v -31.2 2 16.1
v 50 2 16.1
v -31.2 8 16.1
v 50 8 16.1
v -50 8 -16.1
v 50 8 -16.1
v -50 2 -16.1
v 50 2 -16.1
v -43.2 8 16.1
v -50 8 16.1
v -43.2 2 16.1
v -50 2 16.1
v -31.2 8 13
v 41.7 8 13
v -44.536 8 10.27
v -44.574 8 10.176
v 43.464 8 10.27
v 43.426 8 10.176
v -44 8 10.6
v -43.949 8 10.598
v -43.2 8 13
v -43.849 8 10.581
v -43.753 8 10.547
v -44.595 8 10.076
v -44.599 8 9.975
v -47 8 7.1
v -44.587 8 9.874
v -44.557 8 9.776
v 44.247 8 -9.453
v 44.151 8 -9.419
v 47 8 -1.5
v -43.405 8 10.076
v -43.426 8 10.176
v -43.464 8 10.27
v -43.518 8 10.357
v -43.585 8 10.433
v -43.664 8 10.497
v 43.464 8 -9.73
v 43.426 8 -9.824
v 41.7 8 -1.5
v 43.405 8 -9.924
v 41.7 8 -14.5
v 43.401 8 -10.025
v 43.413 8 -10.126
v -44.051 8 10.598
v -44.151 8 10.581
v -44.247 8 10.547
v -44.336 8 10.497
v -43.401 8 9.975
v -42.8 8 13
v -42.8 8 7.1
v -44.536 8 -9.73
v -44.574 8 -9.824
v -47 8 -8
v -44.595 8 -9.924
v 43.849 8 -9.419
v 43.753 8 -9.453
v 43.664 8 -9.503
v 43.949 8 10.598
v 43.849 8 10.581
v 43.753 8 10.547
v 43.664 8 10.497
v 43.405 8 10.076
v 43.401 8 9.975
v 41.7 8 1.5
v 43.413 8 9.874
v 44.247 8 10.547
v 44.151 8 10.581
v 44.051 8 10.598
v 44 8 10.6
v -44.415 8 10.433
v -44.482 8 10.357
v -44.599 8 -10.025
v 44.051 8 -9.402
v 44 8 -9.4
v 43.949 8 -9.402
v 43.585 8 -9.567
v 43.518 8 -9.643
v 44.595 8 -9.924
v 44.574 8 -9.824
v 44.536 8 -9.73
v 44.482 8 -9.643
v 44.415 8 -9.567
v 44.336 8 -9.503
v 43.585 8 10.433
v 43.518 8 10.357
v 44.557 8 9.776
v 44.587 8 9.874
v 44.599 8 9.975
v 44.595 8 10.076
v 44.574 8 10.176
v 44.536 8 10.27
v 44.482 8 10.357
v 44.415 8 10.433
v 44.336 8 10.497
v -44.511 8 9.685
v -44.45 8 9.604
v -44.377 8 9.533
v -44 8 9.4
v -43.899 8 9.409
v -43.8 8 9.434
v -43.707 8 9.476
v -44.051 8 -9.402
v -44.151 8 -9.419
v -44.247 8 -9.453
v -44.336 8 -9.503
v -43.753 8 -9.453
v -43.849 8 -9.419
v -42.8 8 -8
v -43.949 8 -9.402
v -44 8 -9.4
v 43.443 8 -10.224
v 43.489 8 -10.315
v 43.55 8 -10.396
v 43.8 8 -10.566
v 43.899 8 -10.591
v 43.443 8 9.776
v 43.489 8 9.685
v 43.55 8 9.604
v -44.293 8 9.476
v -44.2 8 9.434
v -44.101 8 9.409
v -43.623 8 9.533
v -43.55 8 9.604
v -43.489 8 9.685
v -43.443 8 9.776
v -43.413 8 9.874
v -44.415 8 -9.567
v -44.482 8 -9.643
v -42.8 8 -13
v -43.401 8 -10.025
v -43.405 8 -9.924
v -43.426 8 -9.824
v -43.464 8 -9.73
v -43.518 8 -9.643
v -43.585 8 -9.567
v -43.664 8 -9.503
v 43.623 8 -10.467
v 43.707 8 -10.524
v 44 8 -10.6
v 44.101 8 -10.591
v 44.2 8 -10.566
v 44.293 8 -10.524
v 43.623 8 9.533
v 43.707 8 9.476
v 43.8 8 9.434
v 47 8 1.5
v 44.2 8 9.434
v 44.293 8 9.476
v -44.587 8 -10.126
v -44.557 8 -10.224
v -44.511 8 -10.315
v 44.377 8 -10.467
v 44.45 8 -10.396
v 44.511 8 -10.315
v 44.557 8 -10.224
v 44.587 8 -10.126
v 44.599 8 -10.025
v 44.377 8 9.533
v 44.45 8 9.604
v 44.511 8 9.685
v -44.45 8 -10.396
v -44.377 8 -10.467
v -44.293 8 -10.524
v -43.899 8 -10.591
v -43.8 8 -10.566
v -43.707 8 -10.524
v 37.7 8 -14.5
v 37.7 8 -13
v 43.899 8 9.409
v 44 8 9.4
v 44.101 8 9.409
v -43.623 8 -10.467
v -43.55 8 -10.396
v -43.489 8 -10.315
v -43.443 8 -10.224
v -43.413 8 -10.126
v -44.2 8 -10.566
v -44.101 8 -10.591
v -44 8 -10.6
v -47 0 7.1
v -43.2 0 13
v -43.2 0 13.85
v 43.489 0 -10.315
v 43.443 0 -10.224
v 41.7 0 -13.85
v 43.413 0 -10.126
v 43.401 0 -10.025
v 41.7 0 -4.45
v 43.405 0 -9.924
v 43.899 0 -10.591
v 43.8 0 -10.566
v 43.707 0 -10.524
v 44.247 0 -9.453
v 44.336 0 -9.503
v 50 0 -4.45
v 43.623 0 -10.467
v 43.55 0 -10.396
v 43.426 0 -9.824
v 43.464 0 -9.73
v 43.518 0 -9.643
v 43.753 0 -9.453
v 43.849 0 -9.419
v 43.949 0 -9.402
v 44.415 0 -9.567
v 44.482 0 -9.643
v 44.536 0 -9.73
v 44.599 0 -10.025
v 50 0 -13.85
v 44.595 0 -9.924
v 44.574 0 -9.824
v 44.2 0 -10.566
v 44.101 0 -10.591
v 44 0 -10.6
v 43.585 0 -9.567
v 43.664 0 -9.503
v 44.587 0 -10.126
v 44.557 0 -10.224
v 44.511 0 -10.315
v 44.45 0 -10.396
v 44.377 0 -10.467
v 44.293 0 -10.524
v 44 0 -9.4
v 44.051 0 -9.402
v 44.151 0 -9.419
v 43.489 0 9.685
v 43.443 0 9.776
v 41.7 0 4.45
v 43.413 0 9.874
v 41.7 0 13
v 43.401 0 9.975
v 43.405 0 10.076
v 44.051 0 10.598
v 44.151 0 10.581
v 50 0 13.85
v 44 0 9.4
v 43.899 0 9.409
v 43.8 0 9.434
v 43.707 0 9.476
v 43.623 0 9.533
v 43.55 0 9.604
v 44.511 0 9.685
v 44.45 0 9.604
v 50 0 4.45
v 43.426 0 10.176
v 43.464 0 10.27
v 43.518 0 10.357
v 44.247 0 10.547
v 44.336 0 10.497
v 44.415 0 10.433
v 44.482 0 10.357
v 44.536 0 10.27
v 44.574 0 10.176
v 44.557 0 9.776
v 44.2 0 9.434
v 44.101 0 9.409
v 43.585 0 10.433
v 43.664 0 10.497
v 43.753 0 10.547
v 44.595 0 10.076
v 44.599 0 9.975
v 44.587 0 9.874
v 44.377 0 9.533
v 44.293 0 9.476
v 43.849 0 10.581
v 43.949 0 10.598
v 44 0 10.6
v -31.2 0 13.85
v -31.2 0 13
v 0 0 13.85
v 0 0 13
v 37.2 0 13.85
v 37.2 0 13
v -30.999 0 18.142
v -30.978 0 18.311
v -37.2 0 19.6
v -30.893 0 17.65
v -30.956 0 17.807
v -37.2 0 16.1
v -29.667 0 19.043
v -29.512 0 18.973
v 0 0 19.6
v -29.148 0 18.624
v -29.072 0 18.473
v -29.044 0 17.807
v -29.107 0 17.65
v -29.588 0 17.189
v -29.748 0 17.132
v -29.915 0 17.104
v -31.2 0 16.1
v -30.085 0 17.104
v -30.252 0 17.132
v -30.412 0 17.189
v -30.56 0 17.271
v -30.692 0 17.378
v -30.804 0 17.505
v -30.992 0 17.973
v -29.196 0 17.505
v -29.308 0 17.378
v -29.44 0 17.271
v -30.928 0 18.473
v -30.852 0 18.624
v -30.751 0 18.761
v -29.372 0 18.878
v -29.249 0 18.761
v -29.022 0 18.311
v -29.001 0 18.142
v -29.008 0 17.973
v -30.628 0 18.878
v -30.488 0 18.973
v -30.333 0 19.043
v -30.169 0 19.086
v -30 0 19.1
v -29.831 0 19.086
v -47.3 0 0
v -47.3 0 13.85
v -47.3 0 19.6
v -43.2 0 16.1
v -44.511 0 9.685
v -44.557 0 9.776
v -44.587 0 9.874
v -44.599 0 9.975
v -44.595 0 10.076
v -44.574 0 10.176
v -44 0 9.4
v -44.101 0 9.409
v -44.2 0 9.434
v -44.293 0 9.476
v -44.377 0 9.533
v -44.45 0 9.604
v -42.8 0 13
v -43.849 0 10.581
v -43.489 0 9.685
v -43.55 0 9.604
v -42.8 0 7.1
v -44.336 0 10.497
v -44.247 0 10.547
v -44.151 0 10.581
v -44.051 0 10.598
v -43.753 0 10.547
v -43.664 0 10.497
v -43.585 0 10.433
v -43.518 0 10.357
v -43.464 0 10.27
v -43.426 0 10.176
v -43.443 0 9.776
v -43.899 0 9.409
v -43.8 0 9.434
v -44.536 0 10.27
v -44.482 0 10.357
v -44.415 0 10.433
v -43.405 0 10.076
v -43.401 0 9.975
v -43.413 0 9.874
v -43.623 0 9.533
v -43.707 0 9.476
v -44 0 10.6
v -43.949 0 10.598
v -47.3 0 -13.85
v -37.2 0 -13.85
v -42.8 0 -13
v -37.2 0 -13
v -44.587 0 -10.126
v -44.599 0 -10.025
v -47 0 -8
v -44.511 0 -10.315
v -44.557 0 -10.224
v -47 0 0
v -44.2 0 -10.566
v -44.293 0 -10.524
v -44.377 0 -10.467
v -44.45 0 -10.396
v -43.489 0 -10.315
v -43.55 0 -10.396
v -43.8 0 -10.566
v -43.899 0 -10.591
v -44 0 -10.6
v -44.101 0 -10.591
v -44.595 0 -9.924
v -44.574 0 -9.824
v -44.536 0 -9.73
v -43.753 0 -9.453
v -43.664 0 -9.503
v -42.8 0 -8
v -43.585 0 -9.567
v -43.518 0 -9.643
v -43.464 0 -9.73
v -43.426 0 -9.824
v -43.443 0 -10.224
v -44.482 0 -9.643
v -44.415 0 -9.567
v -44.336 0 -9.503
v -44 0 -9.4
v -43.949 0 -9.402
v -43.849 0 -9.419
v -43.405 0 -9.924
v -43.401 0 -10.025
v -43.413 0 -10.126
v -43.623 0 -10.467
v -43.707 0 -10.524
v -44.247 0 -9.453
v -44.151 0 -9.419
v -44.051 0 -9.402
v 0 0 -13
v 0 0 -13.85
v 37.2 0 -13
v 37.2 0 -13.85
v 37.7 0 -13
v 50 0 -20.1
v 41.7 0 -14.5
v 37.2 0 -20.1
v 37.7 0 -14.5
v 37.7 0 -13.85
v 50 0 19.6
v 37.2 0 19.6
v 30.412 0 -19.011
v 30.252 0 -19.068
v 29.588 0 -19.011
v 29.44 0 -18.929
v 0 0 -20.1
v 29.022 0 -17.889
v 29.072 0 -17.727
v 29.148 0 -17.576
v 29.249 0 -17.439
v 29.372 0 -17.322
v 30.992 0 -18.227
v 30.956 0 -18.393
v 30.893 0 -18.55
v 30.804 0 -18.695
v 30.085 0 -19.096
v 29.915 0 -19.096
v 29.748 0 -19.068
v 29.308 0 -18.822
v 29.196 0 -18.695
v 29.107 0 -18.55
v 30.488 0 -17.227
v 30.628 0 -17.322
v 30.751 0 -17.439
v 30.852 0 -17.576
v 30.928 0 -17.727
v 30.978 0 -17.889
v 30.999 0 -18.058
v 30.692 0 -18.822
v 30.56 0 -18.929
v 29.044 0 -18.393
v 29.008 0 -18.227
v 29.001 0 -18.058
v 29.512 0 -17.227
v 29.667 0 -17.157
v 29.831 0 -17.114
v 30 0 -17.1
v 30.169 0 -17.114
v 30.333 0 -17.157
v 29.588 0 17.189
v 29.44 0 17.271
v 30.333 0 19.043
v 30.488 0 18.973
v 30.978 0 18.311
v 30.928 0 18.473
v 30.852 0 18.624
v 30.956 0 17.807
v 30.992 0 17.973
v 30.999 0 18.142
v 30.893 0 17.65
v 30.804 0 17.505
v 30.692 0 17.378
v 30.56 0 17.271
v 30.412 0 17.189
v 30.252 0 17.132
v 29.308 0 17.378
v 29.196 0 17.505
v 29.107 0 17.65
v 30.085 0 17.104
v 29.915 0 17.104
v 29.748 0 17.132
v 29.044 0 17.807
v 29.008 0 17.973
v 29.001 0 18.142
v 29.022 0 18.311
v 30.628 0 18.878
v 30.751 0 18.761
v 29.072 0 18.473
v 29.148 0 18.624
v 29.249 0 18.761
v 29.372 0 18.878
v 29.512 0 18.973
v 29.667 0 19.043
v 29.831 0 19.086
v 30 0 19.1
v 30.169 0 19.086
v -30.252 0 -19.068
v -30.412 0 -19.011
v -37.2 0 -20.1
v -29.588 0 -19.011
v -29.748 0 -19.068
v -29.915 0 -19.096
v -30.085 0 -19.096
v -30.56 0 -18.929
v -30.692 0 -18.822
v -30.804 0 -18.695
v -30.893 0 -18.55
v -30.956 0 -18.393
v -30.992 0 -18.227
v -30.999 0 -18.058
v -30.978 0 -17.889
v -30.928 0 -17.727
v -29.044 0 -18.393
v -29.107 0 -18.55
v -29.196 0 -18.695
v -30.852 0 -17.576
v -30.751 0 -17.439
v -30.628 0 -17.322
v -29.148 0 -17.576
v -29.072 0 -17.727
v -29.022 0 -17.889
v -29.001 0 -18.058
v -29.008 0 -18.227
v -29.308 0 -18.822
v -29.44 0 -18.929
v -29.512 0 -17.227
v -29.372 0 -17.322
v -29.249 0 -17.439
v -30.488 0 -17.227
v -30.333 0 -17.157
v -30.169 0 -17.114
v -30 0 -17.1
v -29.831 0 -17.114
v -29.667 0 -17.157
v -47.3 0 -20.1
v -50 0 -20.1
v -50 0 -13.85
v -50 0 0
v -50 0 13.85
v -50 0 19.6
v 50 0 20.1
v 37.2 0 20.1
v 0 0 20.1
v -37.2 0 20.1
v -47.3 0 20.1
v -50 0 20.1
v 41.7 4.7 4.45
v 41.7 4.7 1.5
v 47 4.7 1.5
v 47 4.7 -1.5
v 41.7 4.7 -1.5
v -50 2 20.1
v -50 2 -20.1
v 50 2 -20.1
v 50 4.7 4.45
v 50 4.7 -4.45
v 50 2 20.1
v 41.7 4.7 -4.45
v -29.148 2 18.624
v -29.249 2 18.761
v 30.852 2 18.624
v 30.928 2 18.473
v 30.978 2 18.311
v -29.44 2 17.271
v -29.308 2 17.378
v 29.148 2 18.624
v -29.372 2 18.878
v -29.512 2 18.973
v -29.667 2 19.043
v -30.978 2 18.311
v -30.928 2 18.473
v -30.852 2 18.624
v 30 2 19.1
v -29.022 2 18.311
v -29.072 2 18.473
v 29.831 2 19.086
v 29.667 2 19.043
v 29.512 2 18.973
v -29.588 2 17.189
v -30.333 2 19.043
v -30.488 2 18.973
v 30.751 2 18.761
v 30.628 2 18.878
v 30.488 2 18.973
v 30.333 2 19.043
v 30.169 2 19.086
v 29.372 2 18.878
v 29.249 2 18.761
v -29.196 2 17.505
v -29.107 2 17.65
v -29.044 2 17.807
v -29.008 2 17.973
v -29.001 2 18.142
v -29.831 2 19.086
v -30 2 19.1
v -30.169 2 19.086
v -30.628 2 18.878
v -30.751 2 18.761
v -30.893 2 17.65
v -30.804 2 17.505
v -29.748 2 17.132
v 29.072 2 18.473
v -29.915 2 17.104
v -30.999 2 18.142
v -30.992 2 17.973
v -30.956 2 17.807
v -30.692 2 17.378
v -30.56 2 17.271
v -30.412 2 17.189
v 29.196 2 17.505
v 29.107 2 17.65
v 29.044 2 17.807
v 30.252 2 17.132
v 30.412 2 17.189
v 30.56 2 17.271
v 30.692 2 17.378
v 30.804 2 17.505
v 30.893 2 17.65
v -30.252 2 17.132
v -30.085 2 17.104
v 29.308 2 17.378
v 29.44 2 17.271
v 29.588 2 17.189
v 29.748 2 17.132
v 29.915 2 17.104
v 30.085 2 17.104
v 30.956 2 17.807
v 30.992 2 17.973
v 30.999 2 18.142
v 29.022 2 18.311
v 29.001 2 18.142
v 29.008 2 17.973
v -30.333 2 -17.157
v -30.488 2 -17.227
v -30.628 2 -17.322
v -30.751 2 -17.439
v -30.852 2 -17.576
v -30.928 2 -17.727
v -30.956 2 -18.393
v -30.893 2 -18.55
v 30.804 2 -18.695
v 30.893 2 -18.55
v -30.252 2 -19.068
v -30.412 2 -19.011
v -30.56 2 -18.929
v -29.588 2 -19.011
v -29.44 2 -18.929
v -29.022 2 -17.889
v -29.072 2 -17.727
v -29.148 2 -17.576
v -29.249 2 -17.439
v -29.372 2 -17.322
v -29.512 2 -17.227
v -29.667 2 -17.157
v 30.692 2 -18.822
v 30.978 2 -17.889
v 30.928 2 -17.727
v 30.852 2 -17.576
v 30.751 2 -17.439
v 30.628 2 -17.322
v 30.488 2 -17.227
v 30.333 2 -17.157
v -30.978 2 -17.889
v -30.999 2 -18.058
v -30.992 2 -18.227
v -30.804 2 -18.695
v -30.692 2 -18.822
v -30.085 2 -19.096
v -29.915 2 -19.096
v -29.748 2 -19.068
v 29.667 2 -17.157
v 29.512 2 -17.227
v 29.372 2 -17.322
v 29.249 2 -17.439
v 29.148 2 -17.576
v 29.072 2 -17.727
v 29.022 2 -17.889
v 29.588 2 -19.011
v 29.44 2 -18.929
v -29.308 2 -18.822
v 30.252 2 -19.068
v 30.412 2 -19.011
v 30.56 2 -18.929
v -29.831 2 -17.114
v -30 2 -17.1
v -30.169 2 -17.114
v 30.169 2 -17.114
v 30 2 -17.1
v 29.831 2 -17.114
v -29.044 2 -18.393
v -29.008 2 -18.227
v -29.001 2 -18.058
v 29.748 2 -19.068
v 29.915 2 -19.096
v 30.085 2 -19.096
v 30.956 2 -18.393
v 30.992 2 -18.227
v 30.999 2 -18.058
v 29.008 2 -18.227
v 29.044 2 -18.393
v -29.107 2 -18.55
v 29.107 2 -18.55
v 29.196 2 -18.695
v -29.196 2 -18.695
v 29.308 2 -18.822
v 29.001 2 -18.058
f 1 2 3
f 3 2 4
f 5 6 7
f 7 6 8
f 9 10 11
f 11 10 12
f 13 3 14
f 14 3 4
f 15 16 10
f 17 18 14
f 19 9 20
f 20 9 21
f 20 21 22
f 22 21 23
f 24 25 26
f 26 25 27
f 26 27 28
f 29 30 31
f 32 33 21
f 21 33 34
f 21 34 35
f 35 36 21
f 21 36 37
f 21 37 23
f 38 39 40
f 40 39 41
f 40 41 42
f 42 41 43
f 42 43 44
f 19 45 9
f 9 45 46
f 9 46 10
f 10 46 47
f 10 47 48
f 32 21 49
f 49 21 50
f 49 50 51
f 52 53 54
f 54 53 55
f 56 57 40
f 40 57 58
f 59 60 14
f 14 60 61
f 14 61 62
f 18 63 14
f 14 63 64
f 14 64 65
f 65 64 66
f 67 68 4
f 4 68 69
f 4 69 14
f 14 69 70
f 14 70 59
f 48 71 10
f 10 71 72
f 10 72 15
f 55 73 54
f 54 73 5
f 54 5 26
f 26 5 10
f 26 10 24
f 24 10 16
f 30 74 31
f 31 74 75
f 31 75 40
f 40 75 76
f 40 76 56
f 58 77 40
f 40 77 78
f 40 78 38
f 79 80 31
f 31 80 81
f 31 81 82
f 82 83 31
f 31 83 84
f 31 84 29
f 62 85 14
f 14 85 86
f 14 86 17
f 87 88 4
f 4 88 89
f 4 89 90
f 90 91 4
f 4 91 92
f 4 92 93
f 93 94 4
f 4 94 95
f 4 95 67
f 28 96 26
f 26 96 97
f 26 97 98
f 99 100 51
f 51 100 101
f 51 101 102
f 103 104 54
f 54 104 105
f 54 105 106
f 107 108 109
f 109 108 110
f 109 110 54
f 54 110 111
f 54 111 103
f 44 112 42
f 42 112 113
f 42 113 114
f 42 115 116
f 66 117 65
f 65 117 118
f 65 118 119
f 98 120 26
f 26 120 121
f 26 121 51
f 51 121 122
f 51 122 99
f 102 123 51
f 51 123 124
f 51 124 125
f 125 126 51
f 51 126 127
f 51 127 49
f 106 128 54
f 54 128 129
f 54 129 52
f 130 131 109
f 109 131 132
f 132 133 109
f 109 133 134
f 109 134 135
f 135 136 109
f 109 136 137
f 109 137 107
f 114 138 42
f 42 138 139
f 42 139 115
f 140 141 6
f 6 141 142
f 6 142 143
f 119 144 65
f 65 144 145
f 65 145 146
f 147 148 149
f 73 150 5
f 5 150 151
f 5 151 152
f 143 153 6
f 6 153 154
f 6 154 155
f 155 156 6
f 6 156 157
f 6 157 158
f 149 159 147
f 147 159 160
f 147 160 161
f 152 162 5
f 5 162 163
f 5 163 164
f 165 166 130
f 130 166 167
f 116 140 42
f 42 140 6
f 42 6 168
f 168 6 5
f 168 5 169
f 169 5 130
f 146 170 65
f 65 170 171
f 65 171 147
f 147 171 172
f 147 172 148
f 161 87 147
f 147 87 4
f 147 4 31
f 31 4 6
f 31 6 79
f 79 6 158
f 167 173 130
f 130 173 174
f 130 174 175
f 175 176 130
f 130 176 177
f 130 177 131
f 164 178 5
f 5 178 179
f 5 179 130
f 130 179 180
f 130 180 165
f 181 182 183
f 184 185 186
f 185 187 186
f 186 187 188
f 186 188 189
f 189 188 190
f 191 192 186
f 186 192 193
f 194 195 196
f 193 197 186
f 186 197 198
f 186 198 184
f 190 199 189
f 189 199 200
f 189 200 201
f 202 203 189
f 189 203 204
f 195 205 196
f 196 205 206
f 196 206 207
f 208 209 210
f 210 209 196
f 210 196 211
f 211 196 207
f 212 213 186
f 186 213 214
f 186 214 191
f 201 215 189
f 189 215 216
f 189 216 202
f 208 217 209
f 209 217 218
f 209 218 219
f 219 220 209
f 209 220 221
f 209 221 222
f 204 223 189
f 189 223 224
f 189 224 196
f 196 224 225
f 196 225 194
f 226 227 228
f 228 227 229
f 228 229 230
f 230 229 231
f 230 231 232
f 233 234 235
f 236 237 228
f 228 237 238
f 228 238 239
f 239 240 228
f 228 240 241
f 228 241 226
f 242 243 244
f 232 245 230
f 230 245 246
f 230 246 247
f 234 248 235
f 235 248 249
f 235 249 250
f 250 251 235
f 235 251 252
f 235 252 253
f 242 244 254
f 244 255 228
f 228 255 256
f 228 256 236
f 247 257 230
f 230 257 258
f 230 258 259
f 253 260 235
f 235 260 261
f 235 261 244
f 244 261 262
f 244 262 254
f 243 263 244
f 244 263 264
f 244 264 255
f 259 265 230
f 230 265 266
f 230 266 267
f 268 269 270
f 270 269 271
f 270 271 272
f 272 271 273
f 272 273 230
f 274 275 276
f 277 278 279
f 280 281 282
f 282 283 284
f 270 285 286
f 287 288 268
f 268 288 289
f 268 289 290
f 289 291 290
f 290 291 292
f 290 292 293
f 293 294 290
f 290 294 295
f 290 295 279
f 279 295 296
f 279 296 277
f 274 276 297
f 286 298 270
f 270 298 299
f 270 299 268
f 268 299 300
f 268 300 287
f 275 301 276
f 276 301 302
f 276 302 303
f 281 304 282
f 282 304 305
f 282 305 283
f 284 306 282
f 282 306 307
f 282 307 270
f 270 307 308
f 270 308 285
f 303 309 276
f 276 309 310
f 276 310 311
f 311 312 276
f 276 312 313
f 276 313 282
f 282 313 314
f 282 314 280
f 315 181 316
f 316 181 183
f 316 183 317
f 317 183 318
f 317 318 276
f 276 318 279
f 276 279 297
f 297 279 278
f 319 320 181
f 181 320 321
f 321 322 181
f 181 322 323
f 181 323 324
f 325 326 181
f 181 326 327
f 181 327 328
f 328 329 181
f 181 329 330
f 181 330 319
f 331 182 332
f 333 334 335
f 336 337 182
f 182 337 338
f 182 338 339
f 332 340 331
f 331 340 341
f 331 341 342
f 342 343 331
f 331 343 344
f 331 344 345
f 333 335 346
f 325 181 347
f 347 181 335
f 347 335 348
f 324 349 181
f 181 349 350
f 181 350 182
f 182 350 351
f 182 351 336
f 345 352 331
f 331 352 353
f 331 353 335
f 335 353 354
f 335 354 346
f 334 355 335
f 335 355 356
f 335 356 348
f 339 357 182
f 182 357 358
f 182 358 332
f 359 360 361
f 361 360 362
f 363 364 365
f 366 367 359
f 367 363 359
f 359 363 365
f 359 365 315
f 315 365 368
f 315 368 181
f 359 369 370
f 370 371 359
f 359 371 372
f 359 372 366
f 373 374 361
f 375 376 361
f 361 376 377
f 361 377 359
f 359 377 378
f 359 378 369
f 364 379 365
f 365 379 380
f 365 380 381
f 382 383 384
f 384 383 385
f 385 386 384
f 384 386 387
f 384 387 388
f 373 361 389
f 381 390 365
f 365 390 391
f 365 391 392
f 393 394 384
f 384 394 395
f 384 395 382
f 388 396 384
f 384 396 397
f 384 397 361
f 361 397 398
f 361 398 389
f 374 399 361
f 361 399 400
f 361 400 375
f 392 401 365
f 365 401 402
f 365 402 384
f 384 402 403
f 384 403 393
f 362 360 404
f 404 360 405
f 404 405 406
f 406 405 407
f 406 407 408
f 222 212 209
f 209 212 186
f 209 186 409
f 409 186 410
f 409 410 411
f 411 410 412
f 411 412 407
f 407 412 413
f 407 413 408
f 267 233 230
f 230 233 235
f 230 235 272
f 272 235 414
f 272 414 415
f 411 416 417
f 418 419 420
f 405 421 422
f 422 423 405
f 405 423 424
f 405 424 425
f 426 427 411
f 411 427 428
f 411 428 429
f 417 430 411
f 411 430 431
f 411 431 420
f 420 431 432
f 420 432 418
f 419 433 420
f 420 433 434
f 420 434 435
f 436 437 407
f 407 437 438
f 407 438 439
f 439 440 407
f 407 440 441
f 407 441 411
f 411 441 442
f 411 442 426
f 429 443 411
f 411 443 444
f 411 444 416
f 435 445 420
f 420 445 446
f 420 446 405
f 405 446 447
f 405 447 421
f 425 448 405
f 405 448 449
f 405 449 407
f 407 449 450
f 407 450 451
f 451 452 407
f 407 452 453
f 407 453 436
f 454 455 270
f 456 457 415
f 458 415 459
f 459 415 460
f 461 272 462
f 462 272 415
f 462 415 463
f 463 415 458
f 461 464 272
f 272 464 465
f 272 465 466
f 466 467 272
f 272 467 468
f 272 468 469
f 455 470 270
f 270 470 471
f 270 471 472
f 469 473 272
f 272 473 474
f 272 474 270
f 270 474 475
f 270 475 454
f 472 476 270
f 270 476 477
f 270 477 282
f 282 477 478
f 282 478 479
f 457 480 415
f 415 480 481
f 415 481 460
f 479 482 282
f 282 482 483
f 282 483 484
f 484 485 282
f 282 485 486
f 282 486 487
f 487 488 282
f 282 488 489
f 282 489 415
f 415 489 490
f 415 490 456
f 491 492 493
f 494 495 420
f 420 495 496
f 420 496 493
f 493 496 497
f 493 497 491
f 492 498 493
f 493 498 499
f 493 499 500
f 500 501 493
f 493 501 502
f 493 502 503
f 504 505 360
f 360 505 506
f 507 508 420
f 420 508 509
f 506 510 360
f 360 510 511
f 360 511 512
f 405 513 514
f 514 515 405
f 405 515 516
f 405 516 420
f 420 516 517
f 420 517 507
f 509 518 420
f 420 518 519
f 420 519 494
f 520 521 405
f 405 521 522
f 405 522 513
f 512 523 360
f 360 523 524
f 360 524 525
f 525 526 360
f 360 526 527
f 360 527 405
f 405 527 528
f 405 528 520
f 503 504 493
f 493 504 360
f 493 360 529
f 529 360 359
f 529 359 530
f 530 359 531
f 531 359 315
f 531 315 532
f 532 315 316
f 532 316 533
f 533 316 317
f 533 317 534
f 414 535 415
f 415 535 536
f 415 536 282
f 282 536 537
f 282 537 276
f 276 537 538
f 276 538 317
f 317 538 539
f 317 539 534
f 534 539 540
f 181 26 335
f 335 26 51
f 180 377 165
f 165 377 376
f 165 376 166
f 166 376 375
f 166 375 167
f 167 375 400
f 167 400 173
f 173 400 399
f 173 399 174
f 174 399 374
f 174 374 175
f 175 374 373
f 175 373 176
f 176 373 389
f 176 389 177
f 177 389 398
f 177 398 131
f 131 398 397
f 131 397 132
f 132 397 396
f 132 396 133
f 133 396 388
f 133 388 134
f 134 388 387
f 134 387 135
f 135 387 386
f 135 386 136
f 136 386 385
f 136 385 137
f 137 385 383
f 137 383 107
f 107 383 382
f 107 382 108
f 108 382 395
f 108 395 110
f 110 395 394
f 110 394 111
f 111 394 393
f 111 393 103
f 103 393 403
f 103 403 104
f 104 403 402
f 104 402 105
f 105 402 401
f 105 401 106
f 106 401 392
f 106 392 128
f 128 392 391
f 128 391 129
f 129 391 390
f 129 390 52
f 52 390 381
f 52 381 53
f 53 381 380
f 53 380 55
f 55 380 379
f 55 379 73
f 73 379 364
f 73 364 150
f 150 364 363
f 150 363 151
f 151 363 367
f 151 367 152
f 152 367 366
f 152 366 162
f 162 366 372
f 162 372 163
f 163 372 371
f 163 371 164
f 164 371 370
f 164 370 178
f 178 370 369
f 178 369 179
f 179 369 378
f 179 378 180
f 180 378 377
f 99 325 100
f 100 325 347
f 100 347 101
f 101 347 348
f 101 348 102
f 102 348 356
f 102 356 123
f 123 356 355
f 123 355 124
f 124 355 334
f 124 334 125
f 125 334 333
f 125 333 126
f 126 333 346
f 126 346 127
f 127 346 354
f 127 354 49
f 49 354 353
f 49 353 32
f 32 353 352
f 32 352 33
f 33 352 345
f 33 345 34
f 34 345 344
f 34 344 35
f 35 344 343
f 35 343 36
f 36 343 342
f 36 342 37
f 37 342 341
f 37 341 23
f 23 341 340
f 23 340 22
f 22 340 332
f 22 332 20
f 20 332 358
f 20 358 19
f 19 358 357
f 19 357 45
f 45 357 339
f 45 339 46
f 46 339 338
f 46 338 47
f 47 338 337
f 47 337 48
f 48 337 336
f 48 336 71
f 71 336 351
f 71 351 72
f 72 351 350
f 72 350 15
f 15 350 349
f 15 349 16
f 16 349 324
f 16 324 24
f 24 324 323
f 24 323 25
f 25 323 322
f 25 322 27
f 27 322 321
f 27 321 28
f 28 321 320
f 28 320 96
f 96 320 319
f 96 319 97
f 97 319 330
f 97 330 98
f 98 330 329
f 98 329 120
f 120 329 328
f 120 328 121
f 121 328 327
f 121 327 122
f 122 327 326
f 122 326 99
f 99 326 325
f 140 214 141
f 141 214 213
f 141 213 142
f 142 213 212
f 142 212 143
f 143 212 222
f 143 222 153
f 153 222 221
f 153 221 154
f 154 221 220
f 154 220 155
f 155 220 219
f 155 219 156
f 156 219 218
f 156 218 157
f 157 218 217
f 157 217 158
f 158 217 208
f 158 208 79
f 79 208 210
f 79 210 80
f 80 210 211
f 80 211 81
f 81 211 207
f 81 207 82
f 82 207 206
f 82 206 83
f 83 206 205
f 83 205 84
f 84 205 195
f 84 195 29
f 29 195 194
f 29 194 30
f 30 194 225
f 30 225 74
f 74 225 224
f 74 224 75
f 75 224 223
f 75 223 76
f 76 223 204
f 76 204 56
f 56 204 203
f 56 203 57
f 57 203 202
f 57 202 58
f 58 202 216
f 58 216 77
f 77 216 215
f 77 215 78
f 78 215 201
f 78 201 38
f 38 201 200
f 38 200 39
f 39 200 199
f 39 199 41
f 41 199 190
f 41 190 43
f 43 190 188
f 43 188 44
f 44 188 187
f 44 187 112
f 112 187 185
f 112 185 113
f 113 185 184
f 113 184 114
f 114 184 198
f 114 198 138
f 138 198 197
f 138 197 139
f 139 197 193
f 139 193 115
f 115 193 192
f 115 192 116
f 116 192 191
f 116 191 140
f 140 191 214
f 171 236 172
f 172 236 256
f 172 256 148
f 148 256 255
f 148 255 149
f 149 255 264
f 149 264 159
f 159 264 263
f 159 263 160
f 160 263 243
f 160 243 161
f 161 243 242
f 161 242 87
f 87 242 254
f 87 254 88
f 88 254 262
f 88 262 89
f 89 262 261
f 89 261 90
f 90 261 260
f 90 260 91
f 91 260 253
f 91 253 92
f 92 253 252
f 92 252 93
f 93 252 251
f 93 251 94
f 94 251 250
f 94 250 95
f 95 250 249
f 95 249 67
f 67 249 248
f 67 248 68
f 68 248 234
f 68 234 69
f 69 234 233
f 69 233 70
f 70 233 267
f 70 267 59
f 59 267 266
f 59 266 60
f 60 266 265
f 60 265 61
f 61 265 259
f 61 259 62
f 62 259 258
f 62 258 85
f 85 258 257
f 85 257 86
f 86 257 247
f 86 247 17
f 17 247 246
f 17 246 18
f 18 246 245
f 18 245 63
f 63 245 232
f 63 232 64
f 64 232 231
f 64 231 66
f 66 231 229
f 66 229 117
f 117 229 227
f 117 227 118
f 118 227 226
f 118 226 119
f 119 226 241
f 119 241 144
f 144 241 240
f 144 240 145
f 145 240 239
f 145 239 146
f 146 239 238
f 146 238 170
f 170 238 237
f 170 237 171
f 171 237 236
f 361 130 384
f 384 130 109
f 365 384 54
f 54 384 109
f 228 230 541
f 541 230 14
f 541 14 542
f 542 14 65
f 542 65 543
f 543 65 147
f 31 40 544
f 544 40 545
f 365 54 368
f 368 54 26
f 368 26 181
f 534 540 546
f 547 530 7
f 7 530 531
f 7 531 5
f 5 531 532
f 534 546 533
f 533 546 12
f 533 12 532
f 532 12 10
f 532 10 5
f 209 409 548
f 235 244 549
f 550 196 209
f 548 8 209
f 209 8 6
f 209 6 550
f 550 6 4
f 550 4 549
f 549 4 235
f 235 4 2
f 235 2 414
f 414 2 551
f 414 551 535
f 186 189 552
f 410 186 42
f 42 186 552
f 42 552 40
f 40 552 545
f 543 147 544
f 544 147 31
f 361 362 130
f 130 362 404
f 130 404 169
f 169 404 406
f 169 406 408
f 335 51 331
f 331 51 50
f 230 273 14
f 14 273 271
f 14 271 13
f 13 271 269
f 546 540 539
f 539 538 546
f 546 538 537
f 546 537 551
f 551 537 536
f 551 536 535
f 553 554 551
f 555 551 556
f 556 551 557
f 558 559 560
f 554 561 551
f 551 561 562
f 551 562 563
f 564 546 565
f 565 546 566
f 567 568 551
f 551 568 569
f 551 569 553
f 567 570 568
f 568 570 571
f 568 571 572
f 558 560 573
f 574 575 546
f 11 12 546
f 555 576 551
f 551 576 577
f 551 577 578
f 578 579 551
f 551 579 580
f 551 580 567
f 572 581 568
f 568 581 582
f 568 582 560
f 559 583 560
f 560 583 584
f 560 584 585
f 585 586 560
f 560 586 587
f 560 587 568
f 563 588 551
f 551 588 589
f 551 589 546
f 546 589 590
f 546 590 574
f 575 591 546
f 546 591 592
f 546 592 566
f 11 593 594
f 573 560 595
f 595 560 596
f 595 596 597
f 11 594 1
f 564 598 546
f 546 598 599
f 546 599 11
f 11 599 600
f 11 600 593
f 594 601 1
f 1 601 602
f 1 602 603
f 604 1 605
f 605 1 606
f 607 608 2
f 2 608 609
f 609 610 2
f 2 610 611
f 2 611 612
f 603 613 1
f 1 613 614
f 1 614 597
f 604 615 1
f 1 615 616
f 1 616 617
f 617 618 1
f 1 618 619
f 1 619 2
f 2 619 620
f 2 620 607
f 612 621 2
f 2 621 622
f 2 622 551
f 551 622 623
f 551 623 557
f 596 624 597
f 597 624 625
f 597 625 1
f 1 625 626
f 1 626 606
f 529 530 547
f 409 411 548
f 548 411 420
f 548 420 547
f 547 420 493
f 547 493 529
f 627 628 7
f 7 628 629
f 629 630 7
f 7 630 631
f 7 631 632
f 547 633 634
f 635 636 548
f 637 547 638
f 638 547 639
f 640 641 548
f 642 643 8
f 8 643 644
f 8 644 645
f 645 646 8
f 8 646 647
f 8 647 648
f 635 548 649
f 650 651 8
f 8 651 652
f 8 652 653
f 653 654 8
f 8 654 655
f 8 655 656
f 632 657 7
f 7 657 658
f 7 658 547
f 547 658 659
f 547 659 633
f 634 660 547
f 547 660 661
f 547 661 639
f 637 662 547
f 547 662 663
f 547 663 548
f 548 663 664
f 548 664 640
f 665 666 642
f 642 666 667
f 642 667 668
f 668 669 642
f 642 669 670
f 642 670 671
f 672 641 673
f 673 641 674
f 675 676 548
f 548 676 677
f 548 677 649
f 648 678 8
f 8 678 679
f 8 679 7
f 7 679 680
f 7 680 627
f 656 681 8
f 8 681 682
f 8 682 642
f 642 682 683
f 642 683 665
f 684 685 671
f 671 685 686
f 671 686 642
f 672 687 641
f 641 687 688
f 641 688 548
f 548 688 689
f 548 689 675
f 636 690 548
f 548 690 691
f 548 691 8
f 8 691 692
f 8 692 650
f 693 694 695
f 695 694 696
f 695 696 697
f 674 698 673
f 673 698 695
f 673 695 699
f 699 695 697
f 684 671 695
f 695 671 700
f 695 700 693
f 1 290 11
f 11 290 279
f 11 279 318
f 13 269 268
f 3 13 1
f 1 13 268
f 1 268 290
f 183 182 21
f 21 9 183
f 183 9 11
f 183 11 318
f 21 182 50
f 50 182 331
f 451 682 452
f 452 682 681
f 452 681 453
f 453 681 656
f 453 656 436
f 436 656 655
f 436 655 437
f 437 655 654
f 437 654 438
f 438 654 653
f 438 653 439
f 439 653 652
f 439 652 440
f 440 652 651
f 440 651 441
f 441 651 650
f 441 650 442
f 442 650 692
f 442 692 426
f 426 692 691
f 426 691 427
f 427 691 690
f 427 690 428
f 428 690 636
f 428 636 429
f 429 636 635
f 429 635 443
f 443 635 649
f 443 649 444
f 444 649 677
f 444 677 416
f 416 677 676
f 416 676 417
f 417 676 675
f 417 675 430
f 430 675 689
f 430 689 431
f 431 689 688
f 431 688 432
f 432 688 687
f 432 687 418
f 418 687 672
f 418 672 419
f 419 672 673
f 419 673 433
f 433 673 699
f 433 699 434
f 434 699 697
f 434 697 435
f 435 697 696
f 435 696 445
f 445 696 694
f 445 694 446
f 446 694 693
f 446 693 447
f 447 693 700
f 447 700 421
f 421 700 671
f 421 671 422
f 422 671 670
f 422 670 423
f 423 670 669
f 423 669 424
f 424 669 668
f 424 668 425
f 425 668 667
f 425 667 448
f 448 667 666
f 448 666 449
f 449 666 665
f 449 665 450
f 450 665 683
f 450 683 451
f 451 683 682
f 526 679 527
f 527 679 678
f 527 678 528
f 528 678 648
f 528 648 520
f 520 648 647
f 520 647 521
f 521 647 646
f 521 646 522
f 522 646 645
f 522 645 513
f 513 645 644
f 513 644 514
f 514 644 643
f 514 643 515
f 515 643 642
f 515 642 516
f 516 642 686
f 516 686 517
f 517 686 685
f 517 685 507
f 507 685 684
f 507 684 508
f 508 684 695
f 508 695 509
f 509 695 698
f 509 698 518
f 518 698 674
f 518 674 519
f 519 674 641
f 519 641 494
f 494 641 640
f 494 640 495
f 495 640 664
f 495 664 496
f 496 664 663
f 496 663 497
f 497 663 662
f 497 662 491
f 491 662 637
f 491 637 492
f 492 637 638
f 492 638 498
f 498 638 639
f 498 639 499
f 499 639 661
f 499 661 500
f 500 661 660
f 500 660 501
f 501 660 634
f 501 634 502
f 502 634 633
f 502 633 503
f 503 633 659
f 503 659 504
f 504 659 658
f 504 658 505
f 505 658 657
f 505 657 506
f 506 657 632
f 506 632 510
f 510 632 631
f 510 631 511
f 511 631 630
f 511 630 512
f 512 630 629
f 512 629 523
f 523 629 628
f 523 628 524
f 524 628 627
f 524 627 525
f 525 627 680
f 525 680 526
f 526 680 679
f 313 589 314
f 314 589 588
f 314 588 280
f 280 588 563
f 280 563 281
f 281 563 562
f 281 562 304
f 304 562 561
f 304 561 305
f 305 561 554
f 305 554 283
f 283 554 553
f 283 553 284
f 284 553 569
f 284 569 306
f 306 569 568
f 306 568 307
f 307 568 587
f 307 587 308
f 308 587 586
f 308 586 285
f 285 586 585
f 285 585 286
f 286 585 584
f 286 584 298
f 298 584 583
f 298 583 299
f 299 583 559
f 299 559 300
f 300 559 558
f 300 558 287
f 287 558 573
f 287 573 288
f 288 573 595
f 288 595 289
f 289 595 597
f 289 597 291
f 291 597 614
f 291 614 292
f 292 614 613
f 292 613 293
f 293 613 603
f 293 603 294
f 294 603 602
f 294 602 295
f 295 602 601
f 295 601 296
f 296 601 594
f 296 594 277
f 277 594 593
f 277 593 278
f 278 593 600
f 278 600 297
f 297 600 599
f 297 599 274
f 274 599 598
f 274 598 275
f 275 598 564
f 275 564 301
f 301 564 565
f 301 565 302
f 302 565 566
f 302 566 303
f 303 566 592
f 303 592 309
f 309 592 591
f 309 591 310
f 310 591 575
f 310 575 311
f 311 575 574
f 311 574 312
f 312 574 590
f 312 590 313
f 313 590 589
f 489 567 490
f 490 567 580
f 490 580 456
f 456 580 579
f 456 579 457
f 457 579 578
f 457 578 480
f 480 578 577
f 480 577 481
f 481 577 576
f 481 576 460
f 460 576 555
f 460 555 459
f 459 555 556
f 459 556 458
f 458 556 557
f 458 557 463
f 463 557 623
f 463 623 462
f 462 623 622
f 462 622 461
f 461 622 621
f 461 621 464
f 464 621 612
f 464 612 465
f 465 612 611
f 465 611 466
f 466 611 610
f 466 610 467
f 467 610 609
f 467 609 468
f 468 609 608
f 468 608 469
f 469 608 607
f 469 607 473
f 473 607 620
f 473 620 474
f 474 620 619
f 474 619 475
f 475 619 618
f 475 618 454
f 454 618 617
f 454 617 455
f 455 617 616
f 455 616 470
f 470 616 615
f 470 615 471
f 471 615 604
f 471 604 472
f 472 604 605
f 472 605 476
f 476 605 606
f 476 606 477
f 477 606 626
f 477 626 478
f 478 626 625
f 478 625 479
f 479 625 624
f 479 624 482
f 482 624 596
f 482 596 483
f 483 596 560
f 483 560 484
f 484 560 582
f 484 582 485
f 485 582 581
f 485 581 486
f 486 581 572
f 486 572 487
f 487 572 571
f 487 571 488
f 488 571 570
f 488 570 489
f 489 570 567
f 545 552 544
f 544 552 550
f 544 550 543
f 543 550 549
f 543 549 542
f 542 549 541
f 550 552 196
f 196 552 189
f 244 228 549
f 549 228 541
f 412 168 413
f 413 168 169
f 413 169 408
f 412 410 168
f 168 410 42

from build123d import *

# Parameters (mm, degrees)
SKETCH_1_W           = 94
SKETCH_1_H           = 26
SKETCH_1_R           = 0.6
EXTRUDE_1_DEPTH      = 8
SKETCH_2_W           = 4.7
SKETCH_2_H           = 8.9
SKETCH_2_W_2         = 59.6
SKETCH_2_H_2         = 6.6
CUT_EXTRUDE_1_DEPTH  = 50.416596402
SKETCH_3_R           = 1.5
CUT_EXTRUDE_2_DEPTH  = 50.416596402
SKETCH_5_W           = 7.8
SKETCH_5_H           = 2.6
SKETCH_5_W_2         = 8.6
SKETCH_5_H_2         = 2
CUT_EXTRUDE_4_DEPTH  = 6
SKETCH_5_3_W         = 15.6
SKETCH_5_3_H         = 2
CUT_EXTRUDE_5_DEPTH  = 20
SKETCH_6_W           = 70
SKETCH_6_H           = 19.6
SKETCH_6_W_2         = 18.8
SKETCH_6_H_2         = 3
SKETCH_6_W_3         = 82.8
SKETCH_6_H_3         = 11
SKETCH_6_W_4         = 3.2
SKETCH_6_H_4         = 5.2
CUT_EXTRUDE_12_DEPTH = 2
SKETCH_7_W           = 6.7
SKETCH_7_H           = 7.7
CUT_EXTRUDE_13_DEPTH = 0.5
SKETCH_8_W           = 7.4
SKETCH_8_H           = 5.4
SKETCH_8_W_2         = 15.6
SKETCH_8_H_2         = 1.5
EXTRUDE_2_DEPTH      = 2.1
SKETCH_10_W          = 19.8
SKETCH_10_H          = 1.9
SKETCH_10_W_2        = 11.8
SKETCH_10_H_2        = 4.2
EXTRUDE_3_DEPTH      = 2
EXTRUDE_4_REACH      = 53.894
SKETCH_12_W          = 100
SKETCH_12_H          = 32.2
SKETCH_12_W_2        = 94
SKETCH_12_H_2        = 26.1
SKETCH_12_3_W        = 4.3
SKETCH_12_3_H        = 3
SKETCH_12_3_W_2      = 1
SKETCH_12_3_W_3      = 3.2
SKETCH_12_3_H_2      = 5.2
CUT_EXTRUDE_16_DEPTH = 54.133887492
SKETCH_13_W          = 94
SKETCH_13_H          = 0.1
EXTRUDE_5_DEPTH      = 8
SKETCH_14_W          = 1
SKETCH_14_H          = 8
CUT_EXTRUDE_17_DEPTH = 0.5
SKETCH_15_W          = 100
SKETCH_15_H          = 4
EXTRUDE_6_DEPTH      = 2
SKETCH_16_W          = 12
SKETCH_16_H          = 3.1
CUT_EXTRUDE_18_DEPTH = 55.479445665
SKETCH_17_R          = 1
CUT_EXTRUDE_19_DEPTH = 55.221859061
CUT_EXTRUDE_20_REACH = 104.313
SKETCH_18_W          = 8.9
SKETCH_18_H          = 4.7
SKETCH_19_W          = 4
SKETCH_19_H          = 1.5
CUT_EXTRUDE_21_DEPTH = 55.479445665


with BuildPart() as part:
    # 草图1 → 凸台-拉伸1 (new body)
    with BuildSketch(Plane(origin=(0, 0, 0), x_dir=(1, 0, 0), z_dir=(0, 1, 0))):
        Rectangle(SKETCH_1_W, SKETCH_1_H)
        with Locations(Location((-44, 10, 0), (0, 0, 270))):
            Circle(SKETCH_1_R, mode=Mode.SUBTRACT)
        with Locations(Location((-44, -10, 0), (0, 0, 270))):
            Circle(SKETCH_1_R, mode=Mode.SUBTRACT)
        with Locations(Location((44, 10, 0), (0, 0, 270))):
            Circle(SKETCH_1_R, mode=Mode.SUBTRACT)
        with Locations(Location((44, -10, 0), (0, 0, 270))):
            Circle(SKETCH_1_R, mode=Mode.SUBTRACT)
    extrude(amount=EXTRUDE_1_DEPTH)

    # 草图2 → 切除-拉伸1 (cut, through all)
    with BuildSketch(Plane.XZ):
        with Locations((-44.65, 2.65)):
            Rectangle(SKETCH_2_W, SKETCH_2_H)
        with Locations((-4.8, 0)):
            Rectangle(SKETCH_2_W_2, SKETCH_2_H_2)
    extrude(amount=-CUT_EXTRUDE_1_DEPTH, mode=Mode.SUBTRACT)

    # 草图3 → 切除-拉伸2 (cut, through all)
    with BuildSketch(Plane(origin=(0, 0, 0), x_dir=(-1, 0, 0), z_dir=(0, -1, 0))):
        with Locations(Location((27.5, -10, 0), (0, 0, 90))):
            Circle(SKETCH_3_R)
    extrude(amount=-CUT_EXTRUDE_2_DEPTH, mode=Mode.SUBTRACT)

    # 草图5 → 切除-拉伸4 (cut)
    with BuildSketch(Plane.XY.offset(13)):
        with Locations((-37.2, 6.7)):
            Rectangle(SKETCH_5_W, SKETCH_5_H)
        with Locations((-27.5, 7)):
            Rectangle(SKETCH_5_W_2, SKETCH_5_H_2)
    extrude(amount=-CUT_EXTRUDE_4_DEPTH, mode=Mode.SUBTRACT)

    # 草图5<3> → 切除-拉伸5 (cut)
    with BuildSketch(Plane.XY.offset(13)):
        with Locations((32.9, 7)):
            Rectangle(SKETCH_5_3_W, SKETCH_5_3_H)
    extrude(amount=-CUT_EXTRUDE_5_DEPTH, mode=Mode.SUBTRACT)

    # 草图6 → 切除-拉伸12 (cut)
    with BuildSketch(Plane(origin=(0, 8, 0), x_dir=(1, 0, 0), z_dir=(0, 1, 0))):
        with Locations((-7.8, 2.7)):
            Rectangle(SKETCH_6_W, SKETCH_6_H)
        with Locations((36.6, 0)):
            Rectangle(SKETCH_6_W_2, SKETCH_6_H_2)
        with Locations((0.3, -7)):
            Rectangle(SKETCH_6_W_3, SKETCH_6_H_3)
        with Locations((-44.4, 5.4)):
            Rectangle(SKETCH_6_W_4, SKETCH_6_H_4)
    extrude(amount=-CUT_EXTRUDE_12_DEPTH, mode=Mode.SUBTRACT)

    # 草图7 → 切除-拉伸13 (cut)
    with BuildSketch(Plane(origin=(0, 6, 0), x_dir=(1, 0, 0), z_dir=(0, 1, 0))):
        with Locations((-27.35, 7.15)):
            Rectangle(SKETCH_7_W, SKETCH_7_H)
    extrude(amount=-CUT_EXTRUDE_13_DEPTH, mode=Mode.SUBTRACT)

    # 草图8 → 凸台-拉伸2 (add)
    with BuildSketch(Plane.XY.offset(13)):
        with Locations((-37.2, 2.7)):
            Rectangle(SKETCH_8_W, SKETCH_8_H)
        with Locations((32.9, 0.75)):
            Rectangle(SKETCH_8_W_2, SKETCH_8_H_2)
    extrude(amount=EXTRUDE_2_DEPTH)

    # 草图10 → 凸台-拉伸3 (add)
    with BuildSketch(Plane.ZY.offset(47)):
        with Locations((0, 0.95)):
            Rectangle(SKETCH_10_W, SKETCH_10_H)
        with Locations((0, 2.1)):
            Rectangle(SKETCH_10_W_2, SKETCH_10_H_2)
    extrude(amount=EXTRUDE_3_DEPTH)

    # 凸台-拉伸4: up to this face of the body (flat: up to its plane)
    extrude_4_end = Plane(part.part.faces().sort_by_distance((-45.999719539, 0, 11.45))[0])
    # 草图12 → 凸台-拉伸4 (add, up to the picked face)
    with BuildSketch(Plane(origin=(0, 8, 0), x_dir=(1, 0, 0), z_dir=(0, 1, 0)), mode=Mode.PRIVATE) as extrude_4_sk1:
        Rectangle(SKETCH_12_W, SKETCH_12_H)
        with Locations((0, -0.05)):
            Rectangle(SKETCH_12_W_2, SKETCH_12_H_2, mode=Mode.SUBTRACT)
    extrude_4_tool1 = split(extrude(extrude_4_sk1.sketch, amount=-EXTRUDE_4_REACH, mode=Mode.PRIVATE), bisect_by=extrude_4_end, keep=Keep.BOTH, mode=Mode.PRIVATE)
    add(extrude_4_tool1.solids().sort_by(Axis((48.949436, 8, 0), (0, -1, 0)))[0])

    # 草图12<3> → 切除-拉伸16 (cut, through all)
    with BuildSketch(Plane(origin=(0, 8, 0), x_dir=(1, 0, 0), z_dir=(0, 1, 0))):
        Polygon((41.7, 13), (-42.8, 13), (-42.8, 12.5), (27.2, 12.5), (27.2, 7), (40.7, 7), (40.7, 1.5), (41.7, 1.5), align=None)
        Polygon((27.2, 12.5), (-42.8, 12.5), (-42.8, 8), (-42.8, 2.8), (-42.8, 1.8), (-42.8, -13.1), (41.7, -13.1), (41.7, -13), (40.7, -13), (40.7, -12.5), (41.7, -12.5), (41.7, -1.5), (41.7, 1.5), (40.7, 1.5), (40.7, 7), (27.2, 7), align=None)
        with Locations((43.85, 0)):
            Rectangle(SKETCH_12_3_W, SKETCH_12_3_H)
        with Locations((46.5, 0)):
            Rectangle(SKETCH_12_3_W_2, SKETCH_12_3_H)
        with Locations((-44.4, 5.4)):
            Rectangle(SKETCH_12_3_W_3, SKETCH_12_3_H_2)
        with Locations((-46.5, 5.4)):
            Rectangle(SKETCH_12_3_W_2, SKETCH_12_3_H_2)
        Polygon((-46, 2.8), (-47, 2.8), (-47, 1.8), (-42.8, 1.8), (-42.8, 2.8), align=None)
    extrude(amount=-CUT_EXTRUDE_16_DEPTH, mode=Mode.SUBTRACT)

    # 草图13 → 凸台-拉伸5 (add)
    with BuildSketch(Plane(origin=(0, 8, 0), x_dir=(1, 0, 0), z_dir=(0, 1, 0))):
        with Locations((0, -13.05)):
            Rectangle(SKETCH_13_W, SKETCH_13_H)
    extrude(amount=-EXTRUDE_5_DEPTH)

    # 草图14 → 切除-拉伸17 (cut)
    with BuildSketch(Plane(origin=(0, 0, 13), x_dir=(-1, 0, 0), z_dir=(0, 0, -1))):
        with Locations((-41.2, 4)):
            Rectangle(SKETCH_14_W, SKETCH_14_H)
    extrude(amount=CUT_EXTRUDE_17_DEPTH, mode=Mode.SUBTRACT)

    # 草图15 → 凸台-拉伸6 (add)
    with BuildSketch(Plane.XZ):
        with Locations((0, 18.1)):
            Rectangle(SKETCH_15_W, SKETCH_15_H)
        with Locations((0, -18.1)):
            Rectangle(SKETCH_15_W, SKETCH_15_H)
    extrude(amount=-EXTRUDE_6_DEPTH)

    # 草图16 → 切除-拉伸18 (cut, through all)
    with BuildSketch(Plane(origin=(0, 8, 0), x_dir=(1, 0, 0), z_dir=(0, 1, 0))):
        with Locations((-37.2, -14.55)):
            Rectangle(SKETCH_16_W, SKETCH_16_H)
    extrude(amount=-CUT_EXTRUDE_18_DEPTH, mode=Mode.SUBTRACT)

    # 草图17 → 切除-拉伸19 (cut, through all)
    with BuildSketch(Plane(origin=(0, 2, 0), x_dir=(1, 0, 0), z_dir=(0, 1, 0))):
        with Locations(Location((30, 18.1, 0), (0, 0, 270))):
            Circle(SKETCH_17_R)
        with Locations(Location((30, -18.1, 0), (0, 0, 270))):
            Circle(SKETCH_17_R)
        with Locations(Location((-30, 18.1, 0), (0, 0, 270))):
            Circle(SKETCH_17_R)
        with Locations(Location((-30, -18.1, 0), (0, 0, 270))):
            Circle(SKETCH_17_R)
    extrude(amount=-CUT_EXTRUDE_19_DEPTH, mode=Mode.SUBTRACT)

    # 切除-拉伸20: up to this face of the body (flat: up to its plane)
    cut_extrude_20_end = Plane(part.part.faces().sort_by_distance((41.7, 4, 7.25))[0])
    # 草图18 → 切除-拉伸20 (cut, up to the picked face)
    with BuildSketch(Plane(origin=(50, 0, 0), x_dir=(0, 0, -1), z_dir=(1, 0, 0)), mode=Mode.PRIVATE) as cut_extrude_20_sk1:
        with Locations((0, 2.35)):
            Rectangle(SKETCH_18_W, SKETCH_18_H)
    cut_extrude_20_tool1 = split(extrude(cut_extrude_20_sk1.sketch, amount=-CUT_EXTRUDE_20_REACH, mode=Mode.PRIVATE), bisect_by=cut_extrude_20_end, keep=Keep.BOTH, mode=Mode.PRIVATE)
    add(cut_extrude_20_tool1.solids().sort_by(Axis((50, 2.35, 0), (-1, 0, 0)))[0], mode=Mode.SUBTRACT)

    # 草图19 → 切除-拉伸21 (cut, through all)
    with BuildSketch(Plane(origin=(0, 8, 0), x_dir=(1, 0, 0), z_dir=(0, 1, 0))):
        with Locations((39.7, 13.75)):
            Rectangle(SKETCH_19_W, SKETCH_19_H)
    extrude(amount=-CUT_EXTRUDE_21_DEPTH, mode=Mode.SUBTRACT)


solid = part.part
